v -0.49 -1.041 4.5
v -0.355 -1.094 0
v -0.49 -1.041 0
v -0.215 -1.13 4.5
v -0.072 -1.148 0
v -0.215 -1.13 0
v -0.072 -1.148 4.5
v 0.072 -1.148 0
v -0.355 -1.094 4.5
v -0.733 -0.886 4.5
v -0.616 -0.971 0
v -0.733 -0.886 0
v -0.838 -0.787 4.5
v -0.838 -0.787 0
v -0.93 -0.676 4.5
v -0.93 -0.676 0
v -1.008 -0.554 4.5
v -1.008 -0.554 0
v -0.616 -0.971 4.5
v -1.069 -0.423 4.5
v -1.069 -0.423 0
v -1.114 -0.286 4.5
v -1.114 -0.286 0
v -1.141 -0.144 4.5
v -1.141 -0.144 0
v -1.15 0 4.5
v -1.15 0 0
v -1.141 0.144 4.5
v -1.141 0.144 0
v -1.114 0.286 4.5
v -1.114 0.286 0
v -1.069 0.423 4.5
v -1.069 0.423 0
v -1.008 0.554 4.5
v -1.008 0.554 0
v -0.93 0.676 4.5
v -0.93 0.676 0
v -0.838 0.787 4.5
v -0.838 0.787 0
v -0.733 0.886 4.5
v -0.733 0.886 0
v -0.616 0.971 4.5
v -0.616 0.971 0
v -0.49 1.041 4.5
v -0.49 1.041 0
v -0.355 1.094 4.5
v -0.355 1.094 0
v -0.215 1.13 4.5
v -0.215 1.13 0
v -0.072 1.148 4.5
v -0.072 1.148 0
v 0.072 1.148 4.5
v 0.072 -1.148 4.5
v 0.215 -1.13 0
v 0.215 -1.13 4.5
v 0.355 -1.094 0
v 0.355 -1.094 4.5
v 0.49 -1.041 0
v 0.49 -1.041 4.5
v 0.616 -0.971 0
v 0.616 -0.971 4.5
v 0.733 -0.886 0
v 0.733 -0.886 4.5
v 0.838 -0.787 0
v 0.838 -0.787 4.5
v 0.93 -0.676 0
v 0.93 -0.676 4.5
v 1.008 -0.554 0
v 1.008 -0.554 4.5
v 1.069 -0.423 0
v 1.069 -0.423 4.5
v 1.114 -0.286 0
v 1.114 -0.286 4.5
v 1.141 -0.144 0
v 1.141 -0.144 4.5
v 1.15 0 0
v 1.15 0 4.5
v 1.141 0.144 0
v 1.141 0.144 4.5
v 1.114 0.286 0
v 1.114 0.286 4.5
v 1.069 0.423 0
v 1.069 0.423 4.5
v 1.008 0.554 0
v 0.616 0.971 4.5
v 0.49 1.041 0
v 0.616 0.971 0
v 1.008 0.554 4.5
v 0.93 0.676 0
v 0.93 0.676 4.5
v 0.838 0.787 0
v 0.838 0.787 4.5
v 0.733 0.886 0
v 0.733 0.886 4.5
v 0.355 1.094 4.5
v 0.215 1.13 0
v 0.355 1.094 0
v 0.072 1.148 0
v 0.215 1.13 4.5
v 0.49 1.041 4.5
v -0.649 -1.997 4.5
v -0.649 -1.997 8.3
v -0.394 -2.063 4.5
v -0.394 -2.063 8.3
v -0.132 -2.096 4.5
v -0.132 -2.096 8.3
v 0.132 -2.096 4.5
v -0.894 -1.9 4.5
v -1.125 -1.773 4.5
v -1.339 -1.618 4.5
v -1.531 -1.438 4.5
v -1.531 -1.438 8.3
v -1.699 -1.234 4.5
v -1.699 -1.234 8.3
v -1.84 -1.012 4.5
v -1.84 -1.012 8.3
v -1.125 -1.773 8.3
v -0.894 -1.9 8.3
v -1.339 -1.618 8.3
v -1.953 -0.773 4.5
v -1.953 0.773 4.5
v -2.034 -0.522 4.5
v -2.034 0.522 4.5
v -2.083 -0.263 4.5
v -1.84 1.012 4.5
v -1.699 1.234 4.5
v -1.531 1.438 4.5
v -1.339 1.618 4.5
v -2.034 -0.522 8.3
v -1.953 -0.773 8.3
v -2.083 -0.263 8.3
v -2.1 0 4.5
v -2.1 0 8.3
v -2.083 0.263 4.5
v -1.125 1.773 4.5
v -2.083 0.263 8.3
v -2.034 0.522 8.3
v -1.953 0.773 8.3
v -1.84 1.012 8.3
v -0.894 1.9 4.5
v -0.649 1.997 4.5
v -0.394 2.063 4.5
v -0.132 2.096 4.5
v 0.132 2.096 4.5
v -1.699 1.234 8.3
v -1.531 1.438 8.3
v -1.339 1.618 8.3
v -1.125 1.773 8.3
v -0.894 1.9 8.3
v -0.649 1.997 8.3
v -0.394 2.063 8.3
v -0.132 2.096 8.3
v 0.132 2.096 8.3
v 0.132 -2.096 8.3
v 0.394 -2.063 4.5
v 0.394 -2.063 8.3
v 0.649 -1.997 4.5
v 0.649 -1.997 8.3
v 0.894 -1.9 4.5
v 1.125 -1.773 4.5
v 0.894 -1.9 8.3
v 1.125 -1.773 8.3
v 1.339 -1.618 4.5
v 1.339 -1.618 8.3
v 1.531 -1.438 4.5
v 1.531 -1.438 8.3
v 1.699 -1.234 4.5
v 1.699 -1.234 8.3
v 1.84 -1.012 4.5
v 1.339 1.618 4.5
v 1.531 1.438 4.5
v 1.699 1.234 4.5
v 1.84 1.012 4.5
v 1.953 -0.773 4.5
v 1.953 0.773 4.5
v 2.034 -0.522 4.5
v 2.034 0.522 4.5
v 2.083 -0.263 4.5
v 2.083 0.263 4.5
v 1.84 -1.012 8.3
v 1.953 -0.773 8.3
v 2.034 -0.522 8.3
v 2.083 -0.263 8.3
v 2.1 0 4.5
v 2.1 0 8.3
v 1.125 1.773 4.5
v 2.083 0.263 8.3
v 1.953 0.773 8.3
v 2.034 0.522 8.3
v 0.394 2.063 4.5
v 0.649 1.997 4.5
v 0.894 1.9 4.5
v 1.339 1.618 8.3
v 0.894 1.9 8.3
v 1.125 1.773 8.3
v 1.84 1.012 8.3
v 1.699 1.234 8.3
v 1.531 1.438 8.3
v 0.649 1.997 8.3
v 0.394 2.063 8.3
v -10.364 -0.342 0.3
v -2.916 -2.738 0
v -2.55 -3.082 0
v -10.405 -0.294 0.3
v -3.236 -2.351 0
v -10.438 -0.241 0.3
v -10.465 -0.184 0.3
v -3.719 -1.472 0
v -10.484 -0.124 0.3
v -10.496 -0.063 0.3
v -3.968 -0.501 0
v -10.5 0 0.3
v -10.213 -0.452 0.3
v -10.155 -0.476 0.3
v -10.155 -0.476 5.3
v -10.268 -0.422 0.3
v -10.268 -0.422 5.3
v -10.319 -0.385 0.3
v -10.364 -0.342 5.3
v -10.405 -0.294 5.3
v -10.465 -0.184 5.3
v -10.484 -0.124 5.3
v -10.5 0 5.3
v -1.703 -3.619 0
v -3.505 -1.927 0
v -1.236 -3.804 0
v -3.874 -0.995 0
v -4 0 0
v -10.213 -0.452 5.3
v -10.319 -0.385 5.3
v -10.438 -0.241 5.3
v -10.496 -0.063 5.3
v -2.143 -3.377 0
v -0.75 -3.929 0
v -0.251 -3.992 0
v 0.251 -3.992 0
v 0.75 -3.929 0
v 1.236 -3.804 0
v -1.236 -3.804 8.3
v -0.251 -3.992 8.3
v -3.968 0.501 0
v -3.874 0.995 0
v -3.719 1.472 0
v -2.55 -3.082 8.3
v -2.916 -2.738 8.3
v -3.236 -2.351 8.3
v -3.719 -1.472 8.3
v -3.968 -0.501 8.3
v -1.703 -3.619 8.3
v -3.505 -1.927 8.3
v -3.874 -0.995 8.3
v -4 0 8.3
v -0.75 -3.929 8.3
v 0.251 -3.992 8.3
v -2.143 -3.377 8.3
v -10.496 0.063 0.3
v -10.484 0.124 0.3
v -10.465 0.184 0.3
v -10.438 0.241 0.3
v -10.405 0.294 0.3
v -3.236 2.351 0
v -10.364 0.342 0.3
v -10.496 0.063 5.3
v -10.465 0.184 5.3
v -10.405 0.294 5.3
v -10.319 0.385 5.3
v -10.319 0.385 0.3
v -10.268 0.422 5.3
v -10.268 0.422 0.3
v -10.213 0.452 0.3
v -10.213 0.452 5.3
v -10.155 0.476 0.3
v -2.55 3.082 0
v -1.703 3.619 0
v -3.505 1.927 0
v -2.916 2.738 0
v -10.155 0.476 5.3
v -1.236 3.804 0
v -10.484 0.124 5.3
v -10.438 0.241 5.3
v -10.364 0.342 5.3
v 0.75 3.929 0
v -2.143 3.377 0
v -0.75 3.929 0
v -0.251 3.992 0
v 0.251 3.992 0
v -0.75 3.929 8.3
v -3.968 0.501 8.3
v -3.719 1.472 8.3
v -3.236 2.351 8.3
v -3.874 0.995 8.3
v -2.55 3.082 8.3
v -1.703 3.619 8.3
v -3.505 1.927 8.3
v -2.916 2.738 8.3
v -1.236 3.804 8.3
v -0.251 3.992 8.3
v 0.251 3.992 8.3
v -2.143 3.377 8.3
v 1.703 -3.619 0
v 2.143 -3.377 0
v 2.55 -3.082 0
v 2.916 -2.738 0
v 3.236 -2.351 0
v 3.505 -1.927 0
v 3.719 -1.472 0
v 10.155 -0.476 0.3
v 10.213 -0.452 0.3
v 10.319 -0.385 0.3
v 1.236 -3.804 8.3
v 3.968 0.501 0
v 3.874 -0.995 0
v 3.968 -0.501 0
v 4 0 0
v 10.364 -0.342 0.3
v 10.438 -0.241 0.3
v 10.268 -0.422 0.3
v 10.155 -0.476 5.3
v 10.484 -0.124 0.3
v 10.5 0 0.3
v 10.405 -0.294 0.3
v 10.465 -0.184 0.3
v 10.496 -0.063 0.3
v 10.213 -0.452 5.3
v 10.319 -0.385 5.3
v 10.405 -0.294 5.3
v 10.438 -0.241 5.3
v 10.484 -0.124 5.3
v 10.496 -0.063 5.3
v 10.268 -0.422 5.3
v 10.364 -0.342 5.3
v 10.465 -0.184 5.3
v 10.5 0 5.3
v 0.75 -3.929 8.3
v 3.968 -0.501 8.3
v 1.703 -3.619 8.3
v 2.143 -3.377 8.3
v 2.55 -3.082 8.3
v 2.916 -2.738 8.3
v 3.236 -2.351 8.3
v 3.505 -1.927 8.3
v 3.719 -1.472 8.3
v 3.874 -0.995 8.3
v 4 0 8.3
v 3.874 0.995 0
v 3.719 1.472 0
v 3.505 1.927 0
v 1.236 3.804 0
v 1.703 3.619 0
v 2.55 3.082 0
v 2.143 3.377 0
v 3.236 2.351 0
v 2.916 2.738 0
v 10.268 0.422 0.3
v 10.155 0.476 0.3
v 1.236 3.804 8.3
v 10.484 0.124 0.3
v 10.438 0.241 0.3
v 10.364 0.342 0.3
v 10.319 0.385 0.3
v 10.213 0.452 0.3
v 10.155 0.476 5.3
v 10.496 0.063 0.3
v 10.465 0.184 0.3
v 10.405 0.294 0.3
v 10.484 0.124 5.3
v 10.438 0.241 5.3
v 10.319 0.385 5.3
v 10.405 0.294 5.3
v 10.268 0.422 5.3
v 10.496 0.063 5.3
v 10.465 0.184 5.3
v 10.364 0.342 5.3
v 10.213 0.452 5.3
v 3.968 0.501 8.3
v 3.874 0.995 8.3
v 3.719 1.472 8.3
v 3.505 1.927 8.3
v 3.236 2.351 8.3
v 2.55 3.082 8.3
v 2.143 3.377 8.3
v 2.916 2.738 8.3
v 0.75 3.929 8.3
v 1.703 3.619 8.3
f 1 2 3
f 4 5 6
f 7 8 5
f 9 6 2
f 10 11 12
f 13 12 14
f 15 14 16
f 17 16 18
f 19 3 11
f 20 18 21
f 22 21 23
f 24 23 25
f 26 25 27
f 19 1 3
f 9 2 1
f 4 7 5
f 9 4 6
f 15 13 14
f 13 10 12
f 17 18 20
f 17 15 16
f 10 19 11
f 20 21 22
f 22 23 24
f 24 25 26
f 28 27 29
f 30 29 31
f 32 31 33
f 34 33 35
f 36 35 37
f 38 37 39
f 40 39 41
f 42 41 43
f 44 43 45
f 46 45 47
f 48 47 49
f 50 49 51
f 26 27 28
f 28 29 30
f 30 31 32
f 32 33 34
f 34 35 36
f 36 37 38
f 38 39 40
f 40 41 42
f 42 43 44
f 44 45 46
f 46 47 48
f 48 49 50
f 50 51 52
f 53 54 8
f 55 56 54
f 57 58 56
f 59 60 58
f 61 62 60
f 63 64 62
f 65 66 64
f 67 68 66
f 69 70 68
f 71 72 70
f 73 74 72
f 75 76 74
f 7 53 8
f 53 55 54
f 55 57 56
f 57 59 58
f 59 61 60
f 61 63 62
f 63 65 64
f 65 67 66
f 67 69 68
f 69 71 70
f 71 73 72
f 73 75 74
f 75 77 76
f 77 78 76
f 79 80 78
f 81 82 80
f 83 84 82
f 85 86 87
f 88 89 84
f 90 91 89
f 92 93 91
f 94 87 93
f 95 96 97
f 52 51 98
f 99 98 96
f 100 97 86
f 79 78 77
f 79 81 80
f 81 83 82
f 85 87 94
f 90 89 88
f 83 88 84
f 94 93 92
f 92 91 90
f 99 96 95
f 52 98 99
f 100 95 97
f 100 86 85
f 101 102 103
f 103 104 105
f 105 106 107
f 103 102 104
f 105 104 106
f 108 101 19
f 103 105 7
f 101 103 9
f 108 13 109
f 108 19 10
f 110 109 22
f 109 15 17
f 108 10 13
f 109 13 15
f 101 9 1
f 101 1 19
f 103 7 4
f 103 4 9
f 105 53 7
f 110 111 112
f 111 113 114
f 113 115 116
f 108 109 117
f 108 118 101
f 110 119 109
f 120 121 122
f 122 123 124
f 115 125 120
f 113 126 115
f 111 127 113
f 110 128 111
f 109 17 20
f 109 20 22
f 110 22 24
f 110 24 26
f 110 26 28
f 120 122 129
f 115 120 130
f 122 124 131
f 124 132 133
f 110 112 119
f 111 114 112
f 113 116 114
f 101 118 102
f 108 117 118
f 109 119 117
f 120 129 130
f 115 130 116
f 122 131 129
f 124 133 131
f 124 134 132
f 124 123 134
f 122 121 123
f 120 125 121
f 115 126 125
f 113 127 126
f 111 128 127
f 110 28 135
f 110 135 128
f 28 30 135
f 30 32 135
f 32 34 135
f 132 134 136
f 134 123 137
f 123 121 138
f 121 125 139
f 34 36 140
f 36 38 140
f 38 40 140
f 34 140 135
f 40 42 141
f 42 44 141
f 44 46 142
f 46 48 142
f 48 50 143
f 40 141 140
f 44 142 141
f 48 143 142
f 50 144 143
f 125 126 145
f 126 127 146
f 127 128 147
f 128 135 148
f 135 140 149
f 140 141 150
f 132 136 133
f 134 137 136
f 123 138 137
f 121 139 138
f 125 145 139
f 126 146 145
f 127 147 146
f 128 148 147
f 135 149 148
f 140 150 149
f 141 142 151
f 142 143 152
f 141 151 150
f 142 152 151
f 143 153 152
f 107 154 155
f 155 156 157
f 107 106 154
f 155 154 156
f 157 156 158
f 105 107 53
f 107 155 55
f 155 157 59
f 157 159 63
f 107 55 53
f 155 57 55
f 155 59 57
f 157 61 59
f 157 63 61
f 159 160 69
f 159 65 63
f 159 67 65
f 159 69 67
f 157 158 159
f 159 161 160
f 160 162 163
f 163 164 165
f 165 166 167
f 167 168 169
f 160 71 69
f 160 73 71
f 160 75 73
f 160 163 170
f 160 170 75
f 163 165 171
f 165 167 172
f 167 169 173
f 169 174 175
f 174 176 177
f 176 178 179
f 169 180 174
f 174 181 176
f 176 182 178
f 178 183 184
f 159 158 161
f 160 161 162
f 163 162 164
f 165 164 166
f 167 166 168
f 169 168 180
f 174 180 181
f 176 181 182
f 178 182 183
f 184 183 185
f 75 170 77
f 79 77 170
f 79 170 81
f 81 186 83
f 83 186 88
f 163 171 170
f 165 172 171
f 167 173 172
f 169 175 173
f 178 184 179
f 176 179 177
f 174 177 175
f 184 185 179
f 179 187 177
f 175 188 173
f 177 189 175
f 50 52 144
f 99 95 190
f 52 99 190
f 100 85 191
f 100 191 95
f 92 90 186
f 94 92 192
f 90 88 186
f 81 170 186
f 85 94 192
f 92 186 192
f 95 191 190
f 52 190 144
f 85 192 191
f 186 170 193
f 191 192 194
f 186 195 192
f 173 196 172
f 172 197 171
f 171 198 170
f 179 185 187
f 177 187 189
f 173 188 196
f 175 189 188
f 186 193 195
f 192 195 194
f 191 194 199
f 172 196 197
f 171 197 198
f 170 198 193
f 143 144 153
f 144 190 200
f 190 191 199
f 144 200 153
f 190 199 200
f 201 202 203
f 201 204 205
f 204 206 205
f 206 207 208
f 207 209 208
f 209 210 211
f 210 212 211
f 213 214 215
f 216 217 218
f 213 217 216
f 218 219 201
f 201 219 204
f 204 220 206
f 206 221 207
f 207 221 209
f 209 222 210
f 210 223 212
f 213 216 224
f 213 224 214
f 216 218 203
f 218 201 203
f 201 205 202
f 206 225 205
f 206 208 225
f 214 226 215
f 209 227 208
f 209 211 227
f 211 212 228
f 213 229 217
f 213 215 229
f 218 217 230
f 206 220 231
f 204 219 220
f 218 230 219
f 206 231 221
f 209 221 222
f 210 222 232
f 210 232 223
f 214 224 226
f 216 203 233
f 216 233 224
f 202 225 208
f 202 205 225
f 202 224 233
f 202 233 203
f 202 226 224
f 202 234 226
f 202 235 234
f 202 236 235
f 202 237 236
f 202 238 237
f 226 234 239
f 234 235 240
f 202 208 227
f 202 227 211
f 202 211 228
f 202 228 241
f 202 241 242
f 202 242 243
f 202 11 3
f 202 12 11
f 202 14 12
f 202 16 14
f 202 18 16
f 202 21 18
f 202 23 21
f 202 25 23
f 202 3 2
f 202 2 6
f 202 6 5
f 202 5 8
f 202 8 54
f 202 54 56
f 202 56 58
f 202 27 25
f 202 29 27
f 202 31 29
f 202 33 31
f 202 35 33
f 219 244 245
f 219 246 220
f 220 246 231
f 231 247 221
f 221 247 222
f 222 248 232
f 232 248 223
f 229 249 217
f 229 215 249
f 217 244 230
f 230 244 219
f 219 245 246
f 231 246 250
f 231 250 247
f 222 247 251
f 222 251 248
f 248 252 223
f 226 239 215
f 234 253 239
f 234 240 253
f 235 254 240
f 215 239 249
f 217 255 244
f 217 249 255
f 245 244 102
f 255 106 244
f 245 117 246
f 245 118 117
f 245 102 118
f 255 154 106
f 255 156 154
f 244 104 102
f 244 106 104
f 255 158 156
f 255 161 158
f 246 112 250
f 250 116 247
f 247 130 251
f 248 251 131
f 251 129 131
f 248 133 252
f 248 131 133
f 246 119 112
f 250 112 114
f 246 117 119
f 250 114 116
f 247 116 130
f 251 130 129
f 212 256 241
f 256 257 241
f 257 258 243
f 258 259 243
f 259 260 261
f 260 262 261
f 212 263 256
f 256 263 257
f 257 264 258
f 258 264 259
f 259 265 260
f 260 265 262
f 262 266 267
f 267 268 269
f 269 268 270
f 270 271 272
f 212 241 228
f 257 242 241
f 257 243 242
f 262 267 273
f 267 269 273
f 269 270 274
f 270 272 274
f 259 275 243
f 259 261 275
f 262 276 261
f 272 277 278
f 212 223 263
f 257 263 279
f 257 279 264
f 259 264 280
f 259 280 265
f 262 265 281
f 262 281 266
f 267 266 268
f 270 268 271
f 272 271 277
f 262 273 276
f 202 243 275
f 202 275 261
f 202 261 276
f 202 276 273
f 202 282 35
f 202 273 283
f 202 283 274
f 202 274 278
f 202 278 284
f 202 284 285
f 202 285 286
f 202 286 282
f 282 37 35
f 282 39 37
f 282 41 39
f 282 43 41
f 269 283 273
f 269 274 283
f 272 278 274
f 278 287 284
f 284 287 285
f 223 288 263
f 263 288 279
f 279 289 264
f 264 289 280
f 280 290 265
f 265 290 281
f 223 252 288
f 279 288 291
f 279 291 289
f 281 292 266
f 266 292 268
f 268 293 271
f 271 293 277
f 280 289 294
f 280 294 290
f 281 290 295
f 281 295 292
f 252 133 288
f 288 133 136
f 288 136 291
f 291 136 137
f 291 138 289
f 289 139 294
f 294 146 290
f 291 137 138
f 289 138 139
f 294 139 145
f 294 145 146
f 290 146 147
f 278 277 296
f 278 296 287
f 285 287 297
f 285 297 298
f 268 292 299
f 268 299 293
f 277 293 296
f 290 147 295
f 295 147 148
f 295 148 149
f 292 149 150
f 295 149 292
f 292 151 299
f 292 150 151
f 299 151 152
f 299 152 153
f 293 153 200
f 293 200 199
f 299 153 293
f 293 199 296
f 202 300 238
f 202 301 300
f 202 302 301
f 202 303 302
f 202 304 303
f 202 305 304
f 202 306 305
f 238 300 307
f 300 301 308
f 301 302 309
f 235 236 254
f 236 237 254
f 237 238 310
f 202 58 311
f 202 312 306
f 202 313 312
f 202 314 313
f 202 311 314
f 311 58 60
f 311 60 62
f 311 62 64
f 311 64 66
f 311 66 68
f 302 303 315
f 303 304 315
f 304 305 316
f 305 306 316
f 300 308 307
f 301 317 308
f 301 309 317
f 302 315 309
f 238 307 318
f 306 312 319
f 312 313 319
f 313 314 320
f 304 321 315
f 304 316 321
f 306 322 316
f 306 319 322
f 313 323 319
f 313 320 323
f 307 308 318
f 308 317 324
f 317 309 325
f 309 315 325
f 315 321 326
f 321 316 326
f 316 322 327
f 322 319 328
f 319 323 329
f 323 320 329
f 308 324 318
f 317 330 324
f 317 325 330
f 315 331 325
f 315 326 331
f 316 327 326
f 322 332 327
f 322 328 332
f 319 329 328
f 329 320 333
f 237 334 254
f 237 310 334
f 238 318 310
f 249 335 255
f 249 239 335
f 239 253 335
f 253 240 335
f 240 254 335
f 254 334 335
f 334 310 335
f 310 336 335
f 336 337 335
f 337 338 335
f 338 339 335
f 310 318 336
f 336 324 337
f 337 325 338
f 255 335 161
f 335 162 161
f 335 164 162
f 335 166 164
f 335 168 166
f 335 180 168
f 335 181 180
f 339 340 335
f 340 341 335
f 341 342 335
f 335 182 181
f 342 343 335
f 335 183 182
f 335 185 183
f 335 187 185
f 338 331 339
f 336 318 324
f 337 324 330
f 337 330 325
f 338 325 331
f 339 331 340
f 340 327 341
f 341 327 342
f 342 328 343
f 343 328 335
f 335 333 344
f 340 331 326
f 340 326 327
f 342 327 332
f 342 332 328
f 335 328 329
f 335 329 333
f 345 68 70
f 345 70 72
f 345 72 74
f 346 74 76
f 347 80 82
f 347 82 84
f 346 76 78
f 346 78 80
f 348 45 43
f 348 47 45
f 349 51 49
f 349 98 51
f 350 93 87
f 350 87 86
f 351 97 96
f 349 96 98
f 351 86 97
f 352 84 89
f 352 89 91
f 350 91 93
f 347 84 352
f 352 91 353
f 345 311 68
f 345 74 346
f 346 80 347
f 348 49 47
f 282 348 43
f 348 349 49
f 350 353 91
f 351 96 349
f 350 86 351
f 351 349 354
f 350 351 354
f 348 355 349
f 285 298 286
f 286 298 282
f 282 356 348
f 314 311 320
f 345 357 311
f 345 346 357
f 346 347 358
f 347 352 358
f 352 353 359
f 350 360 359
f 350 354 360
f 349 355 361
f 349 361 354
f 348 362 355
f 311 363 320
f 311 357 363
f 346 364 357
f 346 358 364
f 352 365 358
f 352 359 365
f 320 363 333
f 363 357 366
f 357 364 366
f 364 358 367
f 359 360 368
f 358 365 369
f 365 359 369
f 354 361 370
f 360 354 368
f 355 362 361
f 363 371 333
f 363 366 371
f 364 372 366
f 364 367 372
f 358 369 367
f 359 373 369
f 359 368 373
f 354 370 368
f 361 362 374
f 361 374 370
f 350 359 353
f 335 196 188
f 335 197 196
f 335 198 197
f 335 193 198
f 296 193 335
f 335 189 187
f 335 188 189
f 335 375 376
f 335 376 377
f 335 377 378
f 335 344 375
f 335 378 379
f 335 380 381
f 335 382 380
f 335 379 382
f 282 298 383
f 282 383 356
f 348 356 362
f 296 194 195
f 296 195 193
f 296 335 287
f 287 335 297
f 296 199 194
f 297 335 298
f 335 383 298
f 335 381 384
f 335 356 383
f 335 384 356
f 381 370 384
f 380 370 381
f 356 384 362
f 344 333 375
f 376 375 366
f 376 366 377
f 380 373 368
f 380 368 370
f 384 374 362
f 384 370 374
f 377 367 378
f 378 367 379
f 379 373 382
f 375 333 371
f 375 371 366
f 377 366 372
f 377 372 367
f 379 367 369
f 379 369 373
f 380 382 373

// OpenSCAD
// file: ../planelib/motor.scad
yoff=10+2;
xoff=5;//10+17;
xlen=200;

module wingBoom( bd=8, diff=0.1, len=500 )
{
    translate([xoff,yoff,zBoom])
    translate([ -200,0,0]) rotate([0,90,0])cylinder(d=bd+diff,h=len,center=true);  //8mm version
}



module wingMotorPlate( diff=0, holes=true )
{
    h0=12;
    module mcylinder( diff=0 )
    {
        rotate([0,-90,0]) 
            translate([ 0,0,-3-diff ]) 
                cylinder(d=33+diff, h=55+diff,center=false);   // body cylinder
    }
    
    module mholes()
    {
        rotate([0,-90,0]) 
            ScrewMotorPlate(screwlen=60);
    }
    
    module cable_hole()
    {
        translate( [ -3, 15, 0 ] )
        rotate([90,0,0])
        hull(){
            translate([-10,0,0]) cylinder(d=5,h=10,center=true );
            translate([0,-2,0]) cylinder(d=4,h=10,center=true );
            translate([0,+2,0]) cylinder(d=4,h=10,center=true );
        }
    }

    difference(){
        union()
        {
            translate([xoff,yoff,zBoom])
                difference(){
                    mcylinder(0+2*diff);
                    if( holes==true ){
                        mcylinder(-4-2*diff);
                        mholes();
                        cable_hole();
                    }
                }
            translate([xoff,yoff,zBoom])
                intersection(){
                    mcylinder(0);
                    translate([-tubeOffset1-xoff ,tubeOffsety-yoff, 0]) 
                        cylinder(d=dBar1+8, h=33,center=true ); // bar mount
                    }
        }
        union()
        {
            if( holes==true ){
                translate([-tubeOffset1 ,tubeOffsety, zBoom]) 
                            cube([dBar1+10,dBar1+10,12+0.2], center=true );
                translate([ xoff-120/2-tubeOffset1, yoff, zBoom]) 
                    rotate([0,90,0])
                        cylinder(d=8+0.3+4+0.5,h=140,center=true);  // mount for boom 8mm version
                            
                wingPolyLine( d=dPoly, pt=ptWingNose, off=[+2,+0.5] );
                wingElectric();
                xTube( diameter=8+0.1, length=1000, tubeoffset=tubeOffset1 );
                translate( [-xoff+0, yoff-11.2, zBoom ] ) 
                    rotate([90,0,0])
                        ScrewAndHexNut( m=2,dist=10 );
                }
            
        }
    }


}

module wingMotor(diff=0, holes=true) //use diff!!!!!
{
    h0=12; //10;    
    {
        difference(){
            union(){
                Slice(){
                    wingSolid(r=-1/*diff*/);
                    translate([ xoff-130/2-3-10, yoff-15+1, zBoom]) cube([150,25+2,h0], center=true );
                    }
                
                translate([-tubeOffset1 ,tubeOffsety, zBoom]) cylinder(d=dBar1+10, h=h0,center=true );
                translate([-tubeOffset2 ,tubeOffsety, zBoom]) cylinder(d=dBar2+10, h=h0,center=true );
                
                translate([ xoff-120/2-tubeOffset1, yoff, zBoom]) rotate([0,90,0])cylinder(d=8+4,h=120,center=true);  //8mm version
                
                }
            union(){
                translate([xoff-153,yoff-21,zBoom])
                    rotate([0,0,-45])
                        cube([20,20,20], center=true );

                if( holes==true ){
                    color("Black") wingBoom();
                    color("Black") xTube( diameter=8+0.2, length=1000, tubeoffset=tubeOffset1 );
                    color("Black") xTube( diameter=6+0.2, length=400, tubeoffset=tubeOffset2 );   
                    wingMotorPlate(diff=0.1); 
                    wingPolyLine( d=dPoly, pt=ptWingNose, off=[+2,+0.5] );
                    *wingPolyLine( d=dPoly, pt=ptQRuder, off=[+0,+0] );
                    wingElectric();
                    translate( [-xoff+0, yoff-11.2, zBoom ] ) 
                        rotate([90,0,0])
                            ScrewAndHexNut( m=2,dist=10 );
                    translate([xoff,yoff,zBoom])
                        translate([-83,-8,0]) rcube([54,4,20], round=3);
                    translate([xoff-35,yoff-15,zBoom]){
                        translate([-113,2,0]) cube([30,20,1.2], center=true );
                        translate([-113,8,0]) ScrewAndHexNut( m=2,dist=8 );
                        }
                        
                    }
                }
        }
       
    }
    
    *translate([xoff,yoff,zBoom]){
        color("Red") translate([15+12,0,0]) rotate([0,90,0]) cylinder(d=7*25.4,h=8,center=true);   // propeller     
        color("Red") translate([12,0,0]) rotate([0,90,0]) cylinder(d=33,h=17,center=true);   // motor
        *%translate([0,-60,0]) cube( [300,1,500], center=true );
        }
    *color("Black") xTube( diameter=8, length=1000, tubeoffset=tubeOffset1 );
    *color("Black") xTube( diameter=6, length=400, tubeoffset=tubeOffset2 );    
    *wingMotorPlate(diff=0);

}

module wingMotorCoverSolid()
{
    diff=0;
	l=65-0.5+tubeOffset1-30;
    hull(){
        translate([xoff-55,yoff,zBoom]) // body cylinder taken from wingMotorPlate()
            rotate([0,-90,0]) 
                translate([ 0,0,-3-diff ]) 
                    cylinder(d=33+diff, h=1,center=false);   
        translate([ xoff-120+0.5-tubeOffset1, yoff, zBoom]) 
			rotate([0,90,0])
				cylinder(d=8+4+2,h=1,center=true);  // taken from wingMotor
		translate([xoff-tubeOffset1-l/2-25,yoff-5,zBoom])
			cube([l,1,45], center=true);	// hack to allow 3d printing
        }
}

module fuseMotor(d=0.5, holes=true) // not needed with two motors at the wings
{
// 19mm Löcher, Motokreuz: Balken mit 2 Schrauben, Gegenstück in den Rumpf kleben....
    translate([9.5,0,0])
    difference()
    {
        union()
        {
            translate([-280,0,0]){   // cutout inner Motormount
                rotate([0,90,0]) cylinder( d=30-d, h = 3 ); // h=5 was too fat, because it is solid
                }
            translate([-282,0,0]){   // cutout outer Motormount
                rotate([0,90,0]) cylinder( d=35-d, h=3 );
                }
            translate([-282,0,0]){   // cutout outer Motormount
                rotate([0,90,0]) resize([50,20,3])cylinder( d=35-d, h=3 );
                }
            translate([-260,0,+20]) 
                    rotate([0,-90,0]) 
                        cylinder( d=3.8, h=30 );   
            translate([-260,0,-20]) 
                    rotate([0,-90,0]) 
                        cylinder( d=3.8, h=30 );  
            if( !holes ){
            translate([-250+6,0,-20]) 
                    rotate([0,-90,0]) 
                        cylinder( d=6.5, h=30,$fn=6 );   
            translate([-250+6,0,+20]) 
                    rotate([0,-90,0]) 
                        cylinder( d=6.5, h=30,$fn=6 );   
                }
            
        }
        if(holes)
        union()
        {
            translate([-270,0,0]) 
                    rotate([0,-90,0]) 
                        cylinder( d=9, h=40 );   
            translate([-270,0,0])
                rotate([0,-90,0])
                    for( rot=[0:90:360] )
                        rotate([0,0,rot+45])
                            translate([0,19/2,0])
                                    cylinder( d=3.8, h=40 );
            translate([-260,0,+20]) 
                    rotate([0,-90,0]) 
                        cylinder( d=3.8, h=30 );   
            translate([-260,0,-20]) 
                    rotate([0,-90,0]) 
                        cylinder( d=3.8, h=30 );   
        }
    }
}
// file: ../planelib/ruder2.scad
// Ruder new version, test with small cut, printable?

*cutterObjectAll( ptStart=[0,0,0], dStart=20, ptStop=[-20,0,100], dStop=10, dSpace=1.0 );
*cutterMask( ptStart=[0,0,0], dStart=20+2*1, ptStop=[-20,0,100], dStop=10+2*1 );

function RuderGetSize( z, zStart, zStop, sStart, sStop ) = ( ( sStart + (sStop-sStart)/(zStop-zStart)*(z-zStart) ) );
function RuderGetHeight( z, zStart, zStop, sStart, sStop, hBase ) = ( RuderGetSize( z, zStart, zStop, sStart, sStop) * hBase );
function RuderGetPoint( z, zStart, zStop, sStart, sStop, ptBase ) = ( RuderGetSize( z, zStart, zStop, sStart, sStop) * ptBase );
function RuderGetXOffset( z, zStart, zStop, oStart, oStop ) = ( ( oStart + (oStop-oStart)/(zStop-zStart)*(z-zStart) ) );

module Ruder2( ptStart=[0,0,0], dStart=20, ptStop=[0,0,100], dStop=10, dSpace=1.0, rot=45, steps=5 )
{
    difference(){
        children();
        cutterObjectAll(  ptStart, dStart, ptStop, dStop, dSpace, rot, steps );
        cutterInnerAxis( ptStart, ptStop );
        cutterEnds( ptStart, dStart, dSpace, axis=false );
        cutterEnds( ptStop, dStop, dSpace, axis=false );
        }
}

module cutterObjectAll( ptStart, dStart, ptStop, dStop, dSpace, rot=45, steps=5 )
{
    ptDelta = (ptStop - ptStart) / steps; 
    dDelta = (dStop - dStart) / steps; 
    
    for( i=[0:steps-1] )
    {
        dir = ((i%2)==0);
        cutterObjectSingle(  
            ptStart+i*ptDelta, dStart+i*dDelta, 
            ptStart+(i+1)*ptDelta, dStart+(i+1)*dDelta, 
            dSpace, dir, steps );
    }
}

module cutterObjectSingle( ptStart, dStart, ptStop, dStop, dSpace, dir=false, rot=45 )
{
    difference()
    {
        union()
        {
            cutterCylinder( ptStart, dStart+2*dSpace, ptStop, dStop+2*dSpace );
            if( dir == true )
            {
                cutterMask( ptStart, dStart+2*dSpace, ptStop, dStop+2*dSpace, dir, rot=+rot );
                cutterMask( ptStart, dStart+2*dSpace, ptStop, dStop+2*dSpace, dir, rot=-rot );
            }
            cutterSpacer( ptStart, dStart+2*dSpace, dSpace );
            cutterSpacer( ptStop, dStop+2*dSpace, dSpace ); // this partly dublicate
        }
        union()
        {
            cutterCylinder( ptStart, dStart, ptStop, dStop );
            cutterHalf( ptStart, dStart, ptStop, dStop, dir );
        }
    }
}

module cutterCylinder( ptStart, dStart, ptStop, dStop )
{
    hull()
    {
        translate( ptStart ) cylinder( d=dStart, h=0.001, center=true );
        translate( ptStop )  cylinder( d=dStop, h=0.001, center=true  );
    }
}

module cutterMask( ptStart, dStart, ptStop, dStop, dir=true, rot=40 )
{
    oxStart = dir ? 0 : -dStart;
    oxStop = dir ? 0 : -dStop;
    
    hull(){
        translate( ptStart ) 
            rotate( [0,0,rot] )
                translate( [oxStart,-dStart/2,0] )
                    cube([dStart/2,dStart, 0.001], center=false );
        translate( ptStop ) 
            rotate( [0,0,rot] )
                translate( [oxStop,-dStop/2,0] )
                    cube([dStop/2,dStop, 0.001], center=false );
        }
}

module cutterHalf( ptStart, dStart, ptStop, dStop, dir=true )
{
    oxStart = dir ? 0 : -dStart;
    oxStop = dir ? 0 : -dStop;
    hull(){
        translate( ptStart ) 
                translate( [oxStart,-dStart,0] )
                    cube([dStart,2*dStart, 0.001], center=false );
        translate( ptStop ) 
                translate( [oxStop,-dStop,0] )
                    cube([dStop,2*dStop, 0.001], center=false );
        }
}

module cutterSpacer( ptStart, dStart, dSpace )
{
    translate( ptStart )
        cylinder( d=dStart, h=dSpace, center=true );
}

module cutterInnerAxis( ptStart, ptStop, dAxis=2.2 )    // set the correct parameter dAxis
{
    hull()
    {
        translate( ptStart ) sphere( d=dAxis );
        translate( ptStop ) sphere( d=dAxis );
    }
}

module cutterEnds( pt, d, dSpace, axis=false )
{
    translate( pt ) 
        difference()
        {
            union()
            {
                cylinder( d=d+2*dSpace, h=dSpace, center=true );
                translate( [-100,-20,-dSpace/2] ) cube( [100,40,dSpace], center=false );
            }
            if ( axis==false ) cylinder( d=d+2*dSpace, h=dSpace, center=true );
        }
}
// file: ../planelib/screw.scad
// screw and nut helper


//ScrewAndHexNut( m=2, $fn=50 );

module ScrewAndHexNut( m=2, dist=10 )
{
    
    dscrew  = (m==2) ? 2.3 : ((m==3) ? 3.2 : 4.1 );   // screw, loose
    dnut    = (m==2) ? 4.6 : ((m==3) ? 6.2 : 8.0 );   // hex nut, measured
    dhead   = (m==2) ? 4.2 : ((m==3) ? 5.8 : 7.0 );   //hex head
    
    translate( [ 0, 0, -dist/2-10/2 ] ) 
        cylinder(d=4.6, h=10, center=true, $fn=6 ); //m2 nut, 6 edge hole
    translate( [ 0, 0, 0 ] ) 
        cylinder(d=2.3, h=dist+20, center=true ); //m2 screw
    translate( [ 0, 0, +dist/2+10/2 ] ) 
        cylinder(d=4.2, h=10, center=true ); //m2 head
}

module ScrewServo( dist=10 )
{
    cylinder(d=1.5, h=dist ); // servo screw, does not realy fit
}

module ScrewMotorPlate( dscrew=3.5, distmin=15.5, distmax=19.5, dcenter=8, rotoffset=0, screwlen=6, plate=6 )
{
    for( a=[45:90:360]) 
        rotate([0,0,a+rotoffset]) 
            hull(){
                translate( [0, distmax/2, -plate-0.1] ) // max plate is fixed 6
                    cylinder( d=dscrew, h=screwlen, center=false ); // motor screws
                translate( [0, distmin/2, -plate-0.1] ) 
                    cylinder( d=dscrew, h=screwlen, center=false ); // motor screws
                }
    translate( [0, 0, -plate-0.1] ) 
        cylinder( d=dcenter, h=plate+1, center=false ); // motor center

}
// file: ../planelib/servo.scad
servo_size_1 = [25.5,12,37];  // mg90s
servo_size_2 = [33.5,12,3];

*servo_sg90($fn=50);
*ServoDiff();

module servo_sg90_arm( center=[0-5,0+1.5,3.5+3.5+12-2], rot=55 ) // mod during HR work: arm is not x centered in servo -5mm, arm touch cutout z-2, cutout too deep y+1.5, default rot 65->55
{
	l=20+2;
	a=7;
	translate(v = center)
	{ 
		hull()
		for( r=[-rot:5:+rot])
		{
			rotate( [0,0,r+180])
			translate([0,a/2-l/2,0])
				cube( [a,l,a], center=true );
		}
	}
}
    

module servo_sg90( yadd=0 )
{
		cube( servo_size_1 + [0,yadd,0], center=true );
        translate([0, 0, 3.5]) 
            cube( servo_size_2 + [0,yadd,0], center=true );
		servo_sg90_arm( );
}


module ServoDiff( pos=[-100, 7, 348], rot=[0,0,0], yadd=0 )
{ 
    translate( pos)
            rotate(rot)
                servo_sg90( yadd );
}
// file: ../planelib/polyline.scad
module wingPolyLine( d=3, pt=[0,0], off=[0,0]  )
{
    poly = [ for( z=[-20,zTip+20] ) [ o(z).x - s(z)*pt.x - off.x , o(z).y + s(z)*pt.y + off.y, z ] ];   
    #for( i=[0:(len(poly)-2)] ){
        hull(){
            translate(poly[i]) 
                sphere( d=d );
            translate(poly[i+1]) 
                sphere( d=d );
            }
        }
}

module fusePolyLine( d=3, size=605, off=[0,0], p=pClarkFusePolyUp )
{
    for( i=[0:(len(p)-2)] ){
        hull(){
            translate([p[i].x*size, p[i].y*size+off.y, +off.x]) 
                sphere( d=d );
            translate([p[i+1].x*size, p[i+1].y*size+off.y, +off.x]) 
                sphere( d=d );
            }
        *echo( p[i] );
        }
}

module fusePolyLineQ( d=3, size=605, pt=[0,0], off=[0,0] )
{
    poly = [        
                    [o(zBoom).x - s(zBoom)*pt.x - off.x , o(zBoom).y + s(zBoom)*pt.y + off.y,  +o(zBoom).z ],
                    [o(zBase).x - s(zBase)*pt.x - off.x , o(zBase).y + s(zBase)*pt.y + off.y,  +o(zBase).z ],
                    [o(zBase).x - s(zBase)*pt.x - off.x , o(zBase).y + s(zBase)*pt.y + off.y,  -o(zBase).z ], 
                    [o(zBoom).x - s(zBoom)*pt.x - off.x , o(zBoom).y + s(zBoom)*pt.y + off.y,  -o(zBoom).z ]
                    ];
                    
        for( i=[0:(len(poly)-2)] ){
                hull(){
                    translate(poly[i]) 
                        sphere( d=d );
                    translate(poly[i+1]) 
                        sphere( d=d );
                    }
        }
}

module offsetPolyLine(  d=3, size=605, off=10, p=pClarkY )  // this does not yet work, just a test.
{
    for( i=[0:(len(p)-1)] ){
        po = size * p[i];
        pv = size * ((i>0) ? p[i-1] : p[len(p)-1]);
        pn = size * ((i>(len(p)-2)) ? p[0] : p[i+1]);

        pop = (pv + pn)/2 + po;
        p02 = pn - po;
        z = p02.x * pop.y + p02.y * pop.x;
        
        pt = sign( z ) * pop * (off/norm(pop));
       

        
        hull(){
            translate([po.x+pt.x, po.y+pt.y, 0]) 
                sphere( d=d );
            translate([pn.x+pt.x, pn.y+pt.y, 0]) 
                sphere( d=d );
            }
        echo( po, pop, z );
    }
}
// file: ../planelib/wing.scad
module segment( s, o, r=0, p=pSD6060 )
{
    factor = ( s[1] ) / ( s[0] );
    height = ( o[1].z - o[0].z );
    sx = ( o[1].x - o[0].x ) / height;
    sy = ( o[1].y - o[0].y ) / height;
    
    m=[ [ 1, 0,  sx, 0],
        [ 0, 1,  sy, 0],
        [ 0, 0,  1,  0],
        [ 0, 0,  0,  1] ];
    
    translate(o[0])
        multmatrix(m)
            linear_extrude( height=height, scale=factor, convexity=10 ) 
                spant2d( s=s[0], r=r, p=p );
}


module spant3d( d=0.3, offset=[0,0,0], size=100, r=0, p=pSD6060 )
{
    translate(offset) linear_extrude( d, convexity=10 ) spant2d(size,r,p);
}

module spant3dDiff( d=0.3, offset=[0,0,0], size=100, rot=[0,0,0], ra=0, ri=-2.5, p=pSD6060 )
{
    translate(offset) rotate(rot) translate([0,0,-d/2]) linear_extrude( height=d, convexity=10 )
    difference()
    {
        spant2d( s=size, r=ra, p=p );
        spant2d( s=size, r=ri, p=p );
    }
}

module spant2d(s=1, r=0, p=pSD6060 )
{
    offset(delta=r)
    //alternative: offset(r=r)
    scale(s)
    mirror([1,0])  // sollte das weg?
    polygon(p);
}
// file: ../planelib/skin.scad
module outerSkin( d=1, h=0, center=true )
{
    hgt = (h<=0) ? h : 2*d;
    difference(){
        minkowski(){
            children();
            cylinder(r=d,h=hgt,center=center ); 
        }
        children();
    }
}

module outerSkin2( d=1, h=0, center=true )
{
    hgt = (h<=0) ? h : 2*d;
    difference(){
        minkowski(){
            children(0);
            cylinder(r=d,h=hgt,center=center ); 
        }
        children(1);
    }
}

module innerSkin( )
{
    difference(){
        children(0);
        children(1);    
        }
}

module skin2()
{
    difference()
    {
        minkowski()
        {
            children(0);
            children(1);    
        }
        children(0);
    }
}

module Slice( )
{
    intersection()
    {
        children(0);
        children(1);
    }
}

module gridSlice( dy=30, angy=30, grid=2, dim=1000 )
{
    Slice(){
        children();
        for(z=[-dim:dy:dim], angy=[-angy,+angy])  
            translate([0,0,z])  
                rotate([0,angy,0])
                    cube([dim,dim,grid], center=true );
    }

}

module linearSlice( sh=100, sx=100, org=[0,0,0], rot=[0,0,0], center=true )
{
    Slice()
    {
        children();
        translate( org + [0,0,+sh/2] )
            rotate( rot )
                cube( [4*sx,2*sx,sh], center=center );
    }
}

module radialSlice( sh=100, sx=100, org=[0,0,0], rot=[0,0,0], mode=0, center=true )
{
    Steps = 120;
    Slice()
    {
        children();
        translate( org + [0,0,0] )
            rotate( rot )
                radialSliceHelper( d=2*sx, sh=sh, mode, center );
    }
}

module radialSliceHelper( d, sh, mode=0, center=true )
{
    gap = 0.5;
    
    if( mode==0 ){
        cylinder( d=d, h=sh, center=center );
        }
            
    if( mode==1 ){
        difference(){
            union(){
                cylinder( d=d, h=sh, center=center );
                for( r=[0:120:360] )
                    translate([0,0,0]) rotate([0,90,r]) cylinder( d=10, h=d, center=center );
                }
            union(){
                for( r=[0:120:360] )
                    translate([0,0,sh]) rotate([0,90,r]) cylinder( d=10+0.2, h=d, center=center );
                }
            }
        }
 //hier war der marker..       
    if( mode==2 ){
        cx=5;
        cy=d/10;
        difference(){
            union(){
                cylinder( d=d, h=sh, center=center );
                for( r=[0:90:360] )
                    translate([0,0,0]) rotate([0,90,r]) cube([cx,cy,d],center=false); // d is diameter, cx,cy is size
                }
            union(){
                for( r=[0:90:360] )
                    translate([0,0,sh]) 
                        rotate([0,90,r]) 
                            translate([-gap,-gap/2,0])
                                cube([cx+gap*2,cy+gap,d],center=false);
                }
            }
        }
}

module show( d = [10,10,10] )
{
    for( i=[0:$children-1] )
    {
    translate( i * d )
        children(i);
    }
}
// main file
include <../planelib/inspectoer.scad>

fuseCoverHookKnop2( a=10, ha=0.3 );
